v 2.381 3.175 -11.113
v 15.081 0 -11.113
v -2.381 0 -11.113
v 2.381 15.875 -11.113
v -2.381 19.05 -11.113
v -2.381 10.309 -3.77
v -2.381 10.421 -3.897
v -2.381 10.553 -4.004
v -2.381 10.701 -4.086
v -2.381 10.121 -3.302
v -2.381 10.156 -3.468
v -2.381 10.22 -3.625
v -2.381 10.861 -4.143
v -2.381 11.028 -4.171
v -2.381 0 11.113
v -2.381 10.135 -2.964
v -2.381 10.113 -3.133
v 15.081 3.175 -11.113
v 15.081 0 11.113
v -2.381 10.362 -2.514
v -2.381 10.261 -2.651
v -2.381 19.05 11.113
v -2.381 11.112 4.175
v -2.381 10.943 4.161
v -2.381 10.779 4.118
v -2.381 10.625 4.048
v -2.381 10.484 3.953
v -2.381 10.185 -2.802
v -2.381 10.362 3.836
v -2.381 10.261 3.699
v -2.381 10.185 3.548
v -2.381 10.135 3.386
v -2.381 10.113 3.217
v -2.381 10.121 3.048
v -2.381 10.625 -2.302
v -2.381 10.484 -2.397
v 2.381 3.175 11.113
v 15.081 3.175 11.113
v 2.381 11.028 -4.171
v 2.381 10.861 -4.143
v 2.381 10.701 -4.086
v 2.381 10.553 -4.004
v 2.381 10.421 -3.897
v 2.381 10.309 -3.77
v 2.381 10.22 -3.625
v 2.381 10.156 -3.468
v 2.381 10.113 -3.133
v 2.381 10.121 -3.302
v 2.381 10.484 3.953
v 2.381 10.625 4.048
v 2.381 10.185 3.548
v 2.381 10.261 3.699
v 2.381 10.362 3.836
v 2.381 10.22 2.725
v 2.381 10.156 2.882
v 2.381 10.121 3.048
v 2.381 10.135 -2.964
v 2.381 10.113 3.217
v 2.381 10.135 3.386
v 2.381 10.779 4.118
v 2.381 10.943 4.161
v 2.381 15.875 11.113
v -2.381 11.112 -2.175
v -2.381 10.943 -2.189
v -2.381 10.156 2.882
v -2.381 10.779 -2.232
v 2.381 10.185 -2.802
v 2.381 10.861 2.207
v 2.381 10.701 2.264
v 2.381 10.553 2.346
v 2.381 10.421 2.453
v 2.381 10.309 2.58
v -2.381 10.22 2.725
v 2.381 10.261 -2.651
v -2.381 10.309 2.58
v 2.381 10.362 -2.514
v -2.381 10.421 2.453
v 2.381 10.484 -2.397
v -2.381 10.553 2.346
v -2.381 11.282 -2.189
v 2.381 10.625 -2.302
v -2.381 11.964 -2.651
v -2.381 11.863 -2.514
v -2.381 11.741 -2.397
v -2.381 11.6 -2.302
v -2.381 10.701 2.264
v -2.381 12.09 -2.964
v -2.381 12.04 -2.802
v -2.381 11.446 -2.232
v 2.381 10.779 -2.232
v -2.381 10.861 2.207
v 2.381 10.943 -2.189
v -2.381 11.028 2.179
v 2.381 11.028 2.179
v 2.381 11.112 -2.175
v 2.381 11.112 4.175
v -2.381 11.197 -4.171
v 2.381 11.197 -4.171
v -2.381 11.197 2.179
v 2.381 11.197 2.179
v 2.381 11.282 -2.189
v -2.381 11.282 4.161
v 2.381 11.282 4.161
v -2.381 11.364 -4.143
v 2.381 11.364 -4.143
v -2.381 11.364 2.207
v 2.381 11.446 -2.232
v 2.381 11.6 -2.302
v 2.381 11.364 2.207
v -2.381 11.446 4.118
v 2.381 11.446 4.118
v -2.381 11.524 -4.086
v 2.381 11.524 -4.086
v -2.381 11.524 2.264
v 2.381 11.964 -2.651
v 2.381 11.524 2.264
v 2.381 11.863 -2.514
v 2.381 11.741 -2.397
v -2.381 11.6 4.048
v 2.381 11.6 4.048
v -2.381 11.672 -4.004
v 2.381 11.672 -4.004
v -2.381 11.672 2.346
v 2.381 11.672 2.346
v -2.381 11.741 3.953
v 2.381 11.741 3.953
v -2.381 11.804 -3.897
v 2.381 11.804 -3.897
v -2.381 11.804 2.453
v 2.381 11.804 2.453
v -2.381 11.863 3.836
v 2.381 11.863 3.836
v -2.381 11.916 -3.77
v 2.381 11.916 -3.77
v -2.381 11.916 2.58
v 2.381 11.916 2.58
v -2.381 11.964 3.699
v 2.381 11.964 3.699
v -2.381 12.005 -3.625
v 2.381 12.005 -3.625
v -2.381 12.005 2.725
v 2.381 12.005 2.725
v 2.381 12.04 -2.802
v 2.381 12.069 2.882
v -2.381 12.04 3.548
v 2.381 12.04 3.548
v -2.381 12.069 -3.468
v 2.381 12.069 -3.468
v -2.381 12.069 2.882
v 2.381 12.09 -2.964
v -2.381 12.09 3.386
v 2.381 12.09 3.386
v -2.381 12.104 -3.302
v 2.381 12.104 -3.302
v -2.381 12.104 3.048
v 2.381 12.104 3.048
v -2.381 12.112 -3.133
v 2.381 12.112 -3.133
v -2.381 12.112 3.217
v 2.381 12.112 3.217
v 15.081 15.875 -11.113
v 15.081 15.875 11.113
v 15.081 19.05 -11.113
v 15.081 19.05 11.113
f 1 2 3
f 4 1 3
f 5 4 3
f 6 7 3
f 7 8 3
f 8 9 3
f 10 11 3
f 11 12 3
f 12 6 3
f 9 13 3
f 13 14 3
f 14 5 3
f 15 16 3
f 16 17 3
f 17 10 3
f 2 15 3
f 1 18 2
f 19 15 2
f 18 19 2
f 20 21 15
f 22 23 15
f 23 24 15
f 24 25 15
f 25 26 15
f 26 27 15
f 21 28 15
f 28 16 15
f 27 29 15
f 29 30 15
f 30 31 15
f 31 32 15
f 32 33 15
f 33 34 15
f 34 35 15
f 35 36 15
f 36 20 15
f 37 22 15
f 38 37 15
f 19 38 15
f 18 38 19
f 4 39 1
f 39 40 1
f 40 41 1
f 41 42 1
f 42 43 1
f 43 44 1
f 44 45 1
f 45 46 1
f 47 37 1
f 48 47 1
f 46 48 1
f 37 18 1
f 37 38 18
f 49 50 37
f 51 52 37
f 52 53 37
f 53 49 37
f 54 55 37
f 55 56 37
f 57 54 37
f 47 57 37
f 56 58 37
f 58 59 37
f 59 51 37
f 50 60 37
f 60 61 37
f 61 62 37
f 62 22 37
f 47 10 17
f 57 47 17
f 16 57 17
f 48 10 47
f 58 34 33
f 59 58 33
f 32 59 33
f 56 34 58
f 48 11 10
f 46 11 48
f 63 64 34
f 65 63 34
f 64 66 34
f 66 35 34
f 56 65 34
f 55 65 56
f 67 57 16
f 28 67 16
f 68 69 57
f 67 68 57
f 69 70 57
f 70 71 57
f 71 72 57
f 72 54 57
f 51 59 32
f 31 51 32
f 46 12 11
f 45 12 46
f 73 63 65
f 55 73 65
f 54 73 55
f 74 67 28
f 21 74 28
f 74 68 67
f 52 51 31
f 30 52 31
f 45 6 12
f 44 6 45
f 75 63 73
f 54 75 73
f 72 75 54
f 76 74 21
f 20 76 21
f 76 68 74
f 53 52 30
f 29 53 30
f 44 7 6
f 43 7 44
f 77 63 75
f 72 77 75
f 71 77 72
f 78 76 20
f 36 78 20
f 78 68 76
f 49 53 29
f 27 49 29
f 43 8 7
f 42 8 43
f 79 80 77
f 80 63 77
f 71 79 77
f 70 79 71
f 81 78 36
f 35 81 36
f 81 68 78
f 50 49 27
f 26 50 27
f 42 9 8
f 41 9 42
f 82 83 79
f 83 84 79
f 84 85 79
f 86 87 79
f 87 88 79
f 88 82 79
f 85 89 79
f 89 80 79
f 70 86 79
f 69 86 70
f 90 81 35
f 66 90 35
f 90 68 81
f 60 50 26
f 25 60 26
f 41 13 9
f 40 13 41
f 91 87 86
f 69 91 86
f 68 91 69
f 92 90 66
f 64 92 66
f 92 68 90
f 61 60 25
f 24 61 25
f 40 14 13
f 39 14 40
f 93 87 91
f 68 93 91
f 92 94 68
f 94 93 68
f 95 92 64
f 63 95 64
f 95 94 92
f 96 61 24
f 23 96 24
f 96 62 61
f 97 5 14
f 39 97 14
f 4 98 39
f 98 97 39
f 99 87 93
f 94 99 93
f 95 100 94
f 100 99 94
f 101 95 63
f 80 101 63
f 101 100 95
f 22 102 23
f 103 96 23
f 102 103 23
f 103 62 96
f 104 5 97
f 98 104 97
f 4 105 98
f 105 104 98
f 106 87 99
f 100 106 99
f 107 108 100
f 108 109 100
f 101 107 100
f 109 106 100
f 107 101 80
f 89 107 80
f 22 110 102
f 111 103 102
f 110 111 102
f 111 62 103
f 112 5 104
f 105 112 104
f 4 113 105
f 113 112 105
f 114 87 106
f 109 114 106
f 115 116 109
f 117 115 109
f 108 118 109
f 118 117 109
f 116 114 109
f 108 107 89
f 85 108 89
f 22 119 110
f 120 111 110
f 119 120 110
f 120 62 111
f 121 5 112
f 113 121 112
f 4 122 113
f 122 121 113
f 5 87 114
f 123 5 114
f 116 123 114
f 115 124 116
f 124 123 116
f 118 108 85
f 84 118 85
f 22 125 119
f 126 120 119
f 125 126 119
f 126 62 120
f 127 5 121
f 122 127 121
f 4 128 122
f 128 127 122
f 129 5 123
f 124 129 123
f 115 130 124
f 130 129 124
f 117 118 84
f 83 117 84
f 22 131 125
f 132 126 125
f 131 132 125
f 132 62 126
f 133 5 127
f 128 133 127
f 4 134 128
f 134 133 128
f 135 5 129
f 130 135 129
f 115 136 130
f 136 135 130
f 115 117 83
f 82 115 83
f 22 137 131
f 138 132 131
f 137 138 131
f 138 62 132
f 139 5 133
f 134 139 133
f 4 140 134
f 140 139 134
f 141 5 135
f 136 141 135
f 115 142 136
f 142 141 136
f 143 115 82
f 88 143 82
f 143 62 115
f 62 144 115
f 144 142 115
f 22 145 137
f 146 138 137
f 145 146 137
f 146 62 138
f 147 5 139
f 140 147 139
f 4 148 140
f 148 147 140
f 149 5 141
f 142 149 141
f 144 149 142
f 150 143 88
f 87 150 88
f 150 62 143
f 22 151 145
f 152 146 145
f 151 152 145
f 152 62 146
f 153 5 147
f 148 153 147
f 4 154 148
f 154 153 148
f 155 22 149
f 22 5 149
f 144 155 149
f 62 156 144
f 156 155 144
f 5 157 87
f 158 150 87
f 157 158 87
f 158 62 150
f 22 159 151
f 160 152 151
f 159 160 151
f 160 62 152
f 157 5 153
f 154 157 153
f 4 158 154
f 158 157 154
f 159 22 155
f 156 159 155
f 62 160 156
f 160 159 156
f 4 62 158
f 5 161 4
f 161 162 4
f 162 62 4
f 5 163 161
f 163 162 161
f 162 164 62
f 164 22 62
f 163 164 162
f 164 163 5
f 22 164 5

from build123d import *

# Parameters (mm, degrees)
SKETCH1_W           = 4.7625
SKETCH1_H           = 22.225
BOSS_EXTRUDE1_DEPTH = 3.175
SKETCH2_W           = 4.7625
SKETCH2_H           = 22.225
BOSS_EXTRUDE2_DEPTH = 15.875
SKETCH3_R           = 1
CUT_EXTRUDE1_DEPTH  = 5.7625
SKETCH5_W           = 22.225
SKETCH5_H           = 3.175
BOSS_EXTRUDE3_DEPTH = 12.7


with BuildPart() as part:
    # Sketch1 → Boss-Extrude1 (new body)
    with BuildSketch(Plane(origin=(0, 0, 0), x_dir=(1, 0, 0), z_dir=(0, 1, 0))):
        Rectangle(SKETCH1_W, SKETCH1_H)
    extrude(amount=BOSS_EXTRUDE1_DEPTH)

    # Sketch2 → Boss-Extrude2 (add)
    with BuildSketch(Plane(origin=(0, 3.175, 0), x_dir=(1, 0, 0), z_dir=(0, 1, 0))):
        Rectangle(SKETCH2_W, SKETCH2_H)
    extrude(amount=BOSS_EXTRUDE2_DEPTH)

    # Sketch3 → Cut-Extrude1 (cut, through all)
    with BuildSketch(Plane.ZY.offset(2.38125)):
        with Locations((3.175, 11.1125)):
            Circle(SKETCH3_R)
        with Locations((-3.175, 11.1125)):
            Circle(SKETCH3_R)
    extrude(amount=-CUT_EXTRUDE1_DEPTH, mode=Mode.SUBTRACT)

    # Sketch5 → Boss-Extrude3 (add)
    with BuildSketch(Plane(origin=(2.38125, 0, 0), x_dir=(0, 0, -1), z_dir=(1, 0, 0))):
        with Locations((0, 17.4625)):
            Rectangle(SKETCH5_W, SKETCH5_H)
        with Locations((0, 1.5875)):
            Rectangle(SKETCH5_W, SKETCH5_H)
    extrude(amount=BOSS_EXTRUDE3_DEPTH)


solid = part.part
